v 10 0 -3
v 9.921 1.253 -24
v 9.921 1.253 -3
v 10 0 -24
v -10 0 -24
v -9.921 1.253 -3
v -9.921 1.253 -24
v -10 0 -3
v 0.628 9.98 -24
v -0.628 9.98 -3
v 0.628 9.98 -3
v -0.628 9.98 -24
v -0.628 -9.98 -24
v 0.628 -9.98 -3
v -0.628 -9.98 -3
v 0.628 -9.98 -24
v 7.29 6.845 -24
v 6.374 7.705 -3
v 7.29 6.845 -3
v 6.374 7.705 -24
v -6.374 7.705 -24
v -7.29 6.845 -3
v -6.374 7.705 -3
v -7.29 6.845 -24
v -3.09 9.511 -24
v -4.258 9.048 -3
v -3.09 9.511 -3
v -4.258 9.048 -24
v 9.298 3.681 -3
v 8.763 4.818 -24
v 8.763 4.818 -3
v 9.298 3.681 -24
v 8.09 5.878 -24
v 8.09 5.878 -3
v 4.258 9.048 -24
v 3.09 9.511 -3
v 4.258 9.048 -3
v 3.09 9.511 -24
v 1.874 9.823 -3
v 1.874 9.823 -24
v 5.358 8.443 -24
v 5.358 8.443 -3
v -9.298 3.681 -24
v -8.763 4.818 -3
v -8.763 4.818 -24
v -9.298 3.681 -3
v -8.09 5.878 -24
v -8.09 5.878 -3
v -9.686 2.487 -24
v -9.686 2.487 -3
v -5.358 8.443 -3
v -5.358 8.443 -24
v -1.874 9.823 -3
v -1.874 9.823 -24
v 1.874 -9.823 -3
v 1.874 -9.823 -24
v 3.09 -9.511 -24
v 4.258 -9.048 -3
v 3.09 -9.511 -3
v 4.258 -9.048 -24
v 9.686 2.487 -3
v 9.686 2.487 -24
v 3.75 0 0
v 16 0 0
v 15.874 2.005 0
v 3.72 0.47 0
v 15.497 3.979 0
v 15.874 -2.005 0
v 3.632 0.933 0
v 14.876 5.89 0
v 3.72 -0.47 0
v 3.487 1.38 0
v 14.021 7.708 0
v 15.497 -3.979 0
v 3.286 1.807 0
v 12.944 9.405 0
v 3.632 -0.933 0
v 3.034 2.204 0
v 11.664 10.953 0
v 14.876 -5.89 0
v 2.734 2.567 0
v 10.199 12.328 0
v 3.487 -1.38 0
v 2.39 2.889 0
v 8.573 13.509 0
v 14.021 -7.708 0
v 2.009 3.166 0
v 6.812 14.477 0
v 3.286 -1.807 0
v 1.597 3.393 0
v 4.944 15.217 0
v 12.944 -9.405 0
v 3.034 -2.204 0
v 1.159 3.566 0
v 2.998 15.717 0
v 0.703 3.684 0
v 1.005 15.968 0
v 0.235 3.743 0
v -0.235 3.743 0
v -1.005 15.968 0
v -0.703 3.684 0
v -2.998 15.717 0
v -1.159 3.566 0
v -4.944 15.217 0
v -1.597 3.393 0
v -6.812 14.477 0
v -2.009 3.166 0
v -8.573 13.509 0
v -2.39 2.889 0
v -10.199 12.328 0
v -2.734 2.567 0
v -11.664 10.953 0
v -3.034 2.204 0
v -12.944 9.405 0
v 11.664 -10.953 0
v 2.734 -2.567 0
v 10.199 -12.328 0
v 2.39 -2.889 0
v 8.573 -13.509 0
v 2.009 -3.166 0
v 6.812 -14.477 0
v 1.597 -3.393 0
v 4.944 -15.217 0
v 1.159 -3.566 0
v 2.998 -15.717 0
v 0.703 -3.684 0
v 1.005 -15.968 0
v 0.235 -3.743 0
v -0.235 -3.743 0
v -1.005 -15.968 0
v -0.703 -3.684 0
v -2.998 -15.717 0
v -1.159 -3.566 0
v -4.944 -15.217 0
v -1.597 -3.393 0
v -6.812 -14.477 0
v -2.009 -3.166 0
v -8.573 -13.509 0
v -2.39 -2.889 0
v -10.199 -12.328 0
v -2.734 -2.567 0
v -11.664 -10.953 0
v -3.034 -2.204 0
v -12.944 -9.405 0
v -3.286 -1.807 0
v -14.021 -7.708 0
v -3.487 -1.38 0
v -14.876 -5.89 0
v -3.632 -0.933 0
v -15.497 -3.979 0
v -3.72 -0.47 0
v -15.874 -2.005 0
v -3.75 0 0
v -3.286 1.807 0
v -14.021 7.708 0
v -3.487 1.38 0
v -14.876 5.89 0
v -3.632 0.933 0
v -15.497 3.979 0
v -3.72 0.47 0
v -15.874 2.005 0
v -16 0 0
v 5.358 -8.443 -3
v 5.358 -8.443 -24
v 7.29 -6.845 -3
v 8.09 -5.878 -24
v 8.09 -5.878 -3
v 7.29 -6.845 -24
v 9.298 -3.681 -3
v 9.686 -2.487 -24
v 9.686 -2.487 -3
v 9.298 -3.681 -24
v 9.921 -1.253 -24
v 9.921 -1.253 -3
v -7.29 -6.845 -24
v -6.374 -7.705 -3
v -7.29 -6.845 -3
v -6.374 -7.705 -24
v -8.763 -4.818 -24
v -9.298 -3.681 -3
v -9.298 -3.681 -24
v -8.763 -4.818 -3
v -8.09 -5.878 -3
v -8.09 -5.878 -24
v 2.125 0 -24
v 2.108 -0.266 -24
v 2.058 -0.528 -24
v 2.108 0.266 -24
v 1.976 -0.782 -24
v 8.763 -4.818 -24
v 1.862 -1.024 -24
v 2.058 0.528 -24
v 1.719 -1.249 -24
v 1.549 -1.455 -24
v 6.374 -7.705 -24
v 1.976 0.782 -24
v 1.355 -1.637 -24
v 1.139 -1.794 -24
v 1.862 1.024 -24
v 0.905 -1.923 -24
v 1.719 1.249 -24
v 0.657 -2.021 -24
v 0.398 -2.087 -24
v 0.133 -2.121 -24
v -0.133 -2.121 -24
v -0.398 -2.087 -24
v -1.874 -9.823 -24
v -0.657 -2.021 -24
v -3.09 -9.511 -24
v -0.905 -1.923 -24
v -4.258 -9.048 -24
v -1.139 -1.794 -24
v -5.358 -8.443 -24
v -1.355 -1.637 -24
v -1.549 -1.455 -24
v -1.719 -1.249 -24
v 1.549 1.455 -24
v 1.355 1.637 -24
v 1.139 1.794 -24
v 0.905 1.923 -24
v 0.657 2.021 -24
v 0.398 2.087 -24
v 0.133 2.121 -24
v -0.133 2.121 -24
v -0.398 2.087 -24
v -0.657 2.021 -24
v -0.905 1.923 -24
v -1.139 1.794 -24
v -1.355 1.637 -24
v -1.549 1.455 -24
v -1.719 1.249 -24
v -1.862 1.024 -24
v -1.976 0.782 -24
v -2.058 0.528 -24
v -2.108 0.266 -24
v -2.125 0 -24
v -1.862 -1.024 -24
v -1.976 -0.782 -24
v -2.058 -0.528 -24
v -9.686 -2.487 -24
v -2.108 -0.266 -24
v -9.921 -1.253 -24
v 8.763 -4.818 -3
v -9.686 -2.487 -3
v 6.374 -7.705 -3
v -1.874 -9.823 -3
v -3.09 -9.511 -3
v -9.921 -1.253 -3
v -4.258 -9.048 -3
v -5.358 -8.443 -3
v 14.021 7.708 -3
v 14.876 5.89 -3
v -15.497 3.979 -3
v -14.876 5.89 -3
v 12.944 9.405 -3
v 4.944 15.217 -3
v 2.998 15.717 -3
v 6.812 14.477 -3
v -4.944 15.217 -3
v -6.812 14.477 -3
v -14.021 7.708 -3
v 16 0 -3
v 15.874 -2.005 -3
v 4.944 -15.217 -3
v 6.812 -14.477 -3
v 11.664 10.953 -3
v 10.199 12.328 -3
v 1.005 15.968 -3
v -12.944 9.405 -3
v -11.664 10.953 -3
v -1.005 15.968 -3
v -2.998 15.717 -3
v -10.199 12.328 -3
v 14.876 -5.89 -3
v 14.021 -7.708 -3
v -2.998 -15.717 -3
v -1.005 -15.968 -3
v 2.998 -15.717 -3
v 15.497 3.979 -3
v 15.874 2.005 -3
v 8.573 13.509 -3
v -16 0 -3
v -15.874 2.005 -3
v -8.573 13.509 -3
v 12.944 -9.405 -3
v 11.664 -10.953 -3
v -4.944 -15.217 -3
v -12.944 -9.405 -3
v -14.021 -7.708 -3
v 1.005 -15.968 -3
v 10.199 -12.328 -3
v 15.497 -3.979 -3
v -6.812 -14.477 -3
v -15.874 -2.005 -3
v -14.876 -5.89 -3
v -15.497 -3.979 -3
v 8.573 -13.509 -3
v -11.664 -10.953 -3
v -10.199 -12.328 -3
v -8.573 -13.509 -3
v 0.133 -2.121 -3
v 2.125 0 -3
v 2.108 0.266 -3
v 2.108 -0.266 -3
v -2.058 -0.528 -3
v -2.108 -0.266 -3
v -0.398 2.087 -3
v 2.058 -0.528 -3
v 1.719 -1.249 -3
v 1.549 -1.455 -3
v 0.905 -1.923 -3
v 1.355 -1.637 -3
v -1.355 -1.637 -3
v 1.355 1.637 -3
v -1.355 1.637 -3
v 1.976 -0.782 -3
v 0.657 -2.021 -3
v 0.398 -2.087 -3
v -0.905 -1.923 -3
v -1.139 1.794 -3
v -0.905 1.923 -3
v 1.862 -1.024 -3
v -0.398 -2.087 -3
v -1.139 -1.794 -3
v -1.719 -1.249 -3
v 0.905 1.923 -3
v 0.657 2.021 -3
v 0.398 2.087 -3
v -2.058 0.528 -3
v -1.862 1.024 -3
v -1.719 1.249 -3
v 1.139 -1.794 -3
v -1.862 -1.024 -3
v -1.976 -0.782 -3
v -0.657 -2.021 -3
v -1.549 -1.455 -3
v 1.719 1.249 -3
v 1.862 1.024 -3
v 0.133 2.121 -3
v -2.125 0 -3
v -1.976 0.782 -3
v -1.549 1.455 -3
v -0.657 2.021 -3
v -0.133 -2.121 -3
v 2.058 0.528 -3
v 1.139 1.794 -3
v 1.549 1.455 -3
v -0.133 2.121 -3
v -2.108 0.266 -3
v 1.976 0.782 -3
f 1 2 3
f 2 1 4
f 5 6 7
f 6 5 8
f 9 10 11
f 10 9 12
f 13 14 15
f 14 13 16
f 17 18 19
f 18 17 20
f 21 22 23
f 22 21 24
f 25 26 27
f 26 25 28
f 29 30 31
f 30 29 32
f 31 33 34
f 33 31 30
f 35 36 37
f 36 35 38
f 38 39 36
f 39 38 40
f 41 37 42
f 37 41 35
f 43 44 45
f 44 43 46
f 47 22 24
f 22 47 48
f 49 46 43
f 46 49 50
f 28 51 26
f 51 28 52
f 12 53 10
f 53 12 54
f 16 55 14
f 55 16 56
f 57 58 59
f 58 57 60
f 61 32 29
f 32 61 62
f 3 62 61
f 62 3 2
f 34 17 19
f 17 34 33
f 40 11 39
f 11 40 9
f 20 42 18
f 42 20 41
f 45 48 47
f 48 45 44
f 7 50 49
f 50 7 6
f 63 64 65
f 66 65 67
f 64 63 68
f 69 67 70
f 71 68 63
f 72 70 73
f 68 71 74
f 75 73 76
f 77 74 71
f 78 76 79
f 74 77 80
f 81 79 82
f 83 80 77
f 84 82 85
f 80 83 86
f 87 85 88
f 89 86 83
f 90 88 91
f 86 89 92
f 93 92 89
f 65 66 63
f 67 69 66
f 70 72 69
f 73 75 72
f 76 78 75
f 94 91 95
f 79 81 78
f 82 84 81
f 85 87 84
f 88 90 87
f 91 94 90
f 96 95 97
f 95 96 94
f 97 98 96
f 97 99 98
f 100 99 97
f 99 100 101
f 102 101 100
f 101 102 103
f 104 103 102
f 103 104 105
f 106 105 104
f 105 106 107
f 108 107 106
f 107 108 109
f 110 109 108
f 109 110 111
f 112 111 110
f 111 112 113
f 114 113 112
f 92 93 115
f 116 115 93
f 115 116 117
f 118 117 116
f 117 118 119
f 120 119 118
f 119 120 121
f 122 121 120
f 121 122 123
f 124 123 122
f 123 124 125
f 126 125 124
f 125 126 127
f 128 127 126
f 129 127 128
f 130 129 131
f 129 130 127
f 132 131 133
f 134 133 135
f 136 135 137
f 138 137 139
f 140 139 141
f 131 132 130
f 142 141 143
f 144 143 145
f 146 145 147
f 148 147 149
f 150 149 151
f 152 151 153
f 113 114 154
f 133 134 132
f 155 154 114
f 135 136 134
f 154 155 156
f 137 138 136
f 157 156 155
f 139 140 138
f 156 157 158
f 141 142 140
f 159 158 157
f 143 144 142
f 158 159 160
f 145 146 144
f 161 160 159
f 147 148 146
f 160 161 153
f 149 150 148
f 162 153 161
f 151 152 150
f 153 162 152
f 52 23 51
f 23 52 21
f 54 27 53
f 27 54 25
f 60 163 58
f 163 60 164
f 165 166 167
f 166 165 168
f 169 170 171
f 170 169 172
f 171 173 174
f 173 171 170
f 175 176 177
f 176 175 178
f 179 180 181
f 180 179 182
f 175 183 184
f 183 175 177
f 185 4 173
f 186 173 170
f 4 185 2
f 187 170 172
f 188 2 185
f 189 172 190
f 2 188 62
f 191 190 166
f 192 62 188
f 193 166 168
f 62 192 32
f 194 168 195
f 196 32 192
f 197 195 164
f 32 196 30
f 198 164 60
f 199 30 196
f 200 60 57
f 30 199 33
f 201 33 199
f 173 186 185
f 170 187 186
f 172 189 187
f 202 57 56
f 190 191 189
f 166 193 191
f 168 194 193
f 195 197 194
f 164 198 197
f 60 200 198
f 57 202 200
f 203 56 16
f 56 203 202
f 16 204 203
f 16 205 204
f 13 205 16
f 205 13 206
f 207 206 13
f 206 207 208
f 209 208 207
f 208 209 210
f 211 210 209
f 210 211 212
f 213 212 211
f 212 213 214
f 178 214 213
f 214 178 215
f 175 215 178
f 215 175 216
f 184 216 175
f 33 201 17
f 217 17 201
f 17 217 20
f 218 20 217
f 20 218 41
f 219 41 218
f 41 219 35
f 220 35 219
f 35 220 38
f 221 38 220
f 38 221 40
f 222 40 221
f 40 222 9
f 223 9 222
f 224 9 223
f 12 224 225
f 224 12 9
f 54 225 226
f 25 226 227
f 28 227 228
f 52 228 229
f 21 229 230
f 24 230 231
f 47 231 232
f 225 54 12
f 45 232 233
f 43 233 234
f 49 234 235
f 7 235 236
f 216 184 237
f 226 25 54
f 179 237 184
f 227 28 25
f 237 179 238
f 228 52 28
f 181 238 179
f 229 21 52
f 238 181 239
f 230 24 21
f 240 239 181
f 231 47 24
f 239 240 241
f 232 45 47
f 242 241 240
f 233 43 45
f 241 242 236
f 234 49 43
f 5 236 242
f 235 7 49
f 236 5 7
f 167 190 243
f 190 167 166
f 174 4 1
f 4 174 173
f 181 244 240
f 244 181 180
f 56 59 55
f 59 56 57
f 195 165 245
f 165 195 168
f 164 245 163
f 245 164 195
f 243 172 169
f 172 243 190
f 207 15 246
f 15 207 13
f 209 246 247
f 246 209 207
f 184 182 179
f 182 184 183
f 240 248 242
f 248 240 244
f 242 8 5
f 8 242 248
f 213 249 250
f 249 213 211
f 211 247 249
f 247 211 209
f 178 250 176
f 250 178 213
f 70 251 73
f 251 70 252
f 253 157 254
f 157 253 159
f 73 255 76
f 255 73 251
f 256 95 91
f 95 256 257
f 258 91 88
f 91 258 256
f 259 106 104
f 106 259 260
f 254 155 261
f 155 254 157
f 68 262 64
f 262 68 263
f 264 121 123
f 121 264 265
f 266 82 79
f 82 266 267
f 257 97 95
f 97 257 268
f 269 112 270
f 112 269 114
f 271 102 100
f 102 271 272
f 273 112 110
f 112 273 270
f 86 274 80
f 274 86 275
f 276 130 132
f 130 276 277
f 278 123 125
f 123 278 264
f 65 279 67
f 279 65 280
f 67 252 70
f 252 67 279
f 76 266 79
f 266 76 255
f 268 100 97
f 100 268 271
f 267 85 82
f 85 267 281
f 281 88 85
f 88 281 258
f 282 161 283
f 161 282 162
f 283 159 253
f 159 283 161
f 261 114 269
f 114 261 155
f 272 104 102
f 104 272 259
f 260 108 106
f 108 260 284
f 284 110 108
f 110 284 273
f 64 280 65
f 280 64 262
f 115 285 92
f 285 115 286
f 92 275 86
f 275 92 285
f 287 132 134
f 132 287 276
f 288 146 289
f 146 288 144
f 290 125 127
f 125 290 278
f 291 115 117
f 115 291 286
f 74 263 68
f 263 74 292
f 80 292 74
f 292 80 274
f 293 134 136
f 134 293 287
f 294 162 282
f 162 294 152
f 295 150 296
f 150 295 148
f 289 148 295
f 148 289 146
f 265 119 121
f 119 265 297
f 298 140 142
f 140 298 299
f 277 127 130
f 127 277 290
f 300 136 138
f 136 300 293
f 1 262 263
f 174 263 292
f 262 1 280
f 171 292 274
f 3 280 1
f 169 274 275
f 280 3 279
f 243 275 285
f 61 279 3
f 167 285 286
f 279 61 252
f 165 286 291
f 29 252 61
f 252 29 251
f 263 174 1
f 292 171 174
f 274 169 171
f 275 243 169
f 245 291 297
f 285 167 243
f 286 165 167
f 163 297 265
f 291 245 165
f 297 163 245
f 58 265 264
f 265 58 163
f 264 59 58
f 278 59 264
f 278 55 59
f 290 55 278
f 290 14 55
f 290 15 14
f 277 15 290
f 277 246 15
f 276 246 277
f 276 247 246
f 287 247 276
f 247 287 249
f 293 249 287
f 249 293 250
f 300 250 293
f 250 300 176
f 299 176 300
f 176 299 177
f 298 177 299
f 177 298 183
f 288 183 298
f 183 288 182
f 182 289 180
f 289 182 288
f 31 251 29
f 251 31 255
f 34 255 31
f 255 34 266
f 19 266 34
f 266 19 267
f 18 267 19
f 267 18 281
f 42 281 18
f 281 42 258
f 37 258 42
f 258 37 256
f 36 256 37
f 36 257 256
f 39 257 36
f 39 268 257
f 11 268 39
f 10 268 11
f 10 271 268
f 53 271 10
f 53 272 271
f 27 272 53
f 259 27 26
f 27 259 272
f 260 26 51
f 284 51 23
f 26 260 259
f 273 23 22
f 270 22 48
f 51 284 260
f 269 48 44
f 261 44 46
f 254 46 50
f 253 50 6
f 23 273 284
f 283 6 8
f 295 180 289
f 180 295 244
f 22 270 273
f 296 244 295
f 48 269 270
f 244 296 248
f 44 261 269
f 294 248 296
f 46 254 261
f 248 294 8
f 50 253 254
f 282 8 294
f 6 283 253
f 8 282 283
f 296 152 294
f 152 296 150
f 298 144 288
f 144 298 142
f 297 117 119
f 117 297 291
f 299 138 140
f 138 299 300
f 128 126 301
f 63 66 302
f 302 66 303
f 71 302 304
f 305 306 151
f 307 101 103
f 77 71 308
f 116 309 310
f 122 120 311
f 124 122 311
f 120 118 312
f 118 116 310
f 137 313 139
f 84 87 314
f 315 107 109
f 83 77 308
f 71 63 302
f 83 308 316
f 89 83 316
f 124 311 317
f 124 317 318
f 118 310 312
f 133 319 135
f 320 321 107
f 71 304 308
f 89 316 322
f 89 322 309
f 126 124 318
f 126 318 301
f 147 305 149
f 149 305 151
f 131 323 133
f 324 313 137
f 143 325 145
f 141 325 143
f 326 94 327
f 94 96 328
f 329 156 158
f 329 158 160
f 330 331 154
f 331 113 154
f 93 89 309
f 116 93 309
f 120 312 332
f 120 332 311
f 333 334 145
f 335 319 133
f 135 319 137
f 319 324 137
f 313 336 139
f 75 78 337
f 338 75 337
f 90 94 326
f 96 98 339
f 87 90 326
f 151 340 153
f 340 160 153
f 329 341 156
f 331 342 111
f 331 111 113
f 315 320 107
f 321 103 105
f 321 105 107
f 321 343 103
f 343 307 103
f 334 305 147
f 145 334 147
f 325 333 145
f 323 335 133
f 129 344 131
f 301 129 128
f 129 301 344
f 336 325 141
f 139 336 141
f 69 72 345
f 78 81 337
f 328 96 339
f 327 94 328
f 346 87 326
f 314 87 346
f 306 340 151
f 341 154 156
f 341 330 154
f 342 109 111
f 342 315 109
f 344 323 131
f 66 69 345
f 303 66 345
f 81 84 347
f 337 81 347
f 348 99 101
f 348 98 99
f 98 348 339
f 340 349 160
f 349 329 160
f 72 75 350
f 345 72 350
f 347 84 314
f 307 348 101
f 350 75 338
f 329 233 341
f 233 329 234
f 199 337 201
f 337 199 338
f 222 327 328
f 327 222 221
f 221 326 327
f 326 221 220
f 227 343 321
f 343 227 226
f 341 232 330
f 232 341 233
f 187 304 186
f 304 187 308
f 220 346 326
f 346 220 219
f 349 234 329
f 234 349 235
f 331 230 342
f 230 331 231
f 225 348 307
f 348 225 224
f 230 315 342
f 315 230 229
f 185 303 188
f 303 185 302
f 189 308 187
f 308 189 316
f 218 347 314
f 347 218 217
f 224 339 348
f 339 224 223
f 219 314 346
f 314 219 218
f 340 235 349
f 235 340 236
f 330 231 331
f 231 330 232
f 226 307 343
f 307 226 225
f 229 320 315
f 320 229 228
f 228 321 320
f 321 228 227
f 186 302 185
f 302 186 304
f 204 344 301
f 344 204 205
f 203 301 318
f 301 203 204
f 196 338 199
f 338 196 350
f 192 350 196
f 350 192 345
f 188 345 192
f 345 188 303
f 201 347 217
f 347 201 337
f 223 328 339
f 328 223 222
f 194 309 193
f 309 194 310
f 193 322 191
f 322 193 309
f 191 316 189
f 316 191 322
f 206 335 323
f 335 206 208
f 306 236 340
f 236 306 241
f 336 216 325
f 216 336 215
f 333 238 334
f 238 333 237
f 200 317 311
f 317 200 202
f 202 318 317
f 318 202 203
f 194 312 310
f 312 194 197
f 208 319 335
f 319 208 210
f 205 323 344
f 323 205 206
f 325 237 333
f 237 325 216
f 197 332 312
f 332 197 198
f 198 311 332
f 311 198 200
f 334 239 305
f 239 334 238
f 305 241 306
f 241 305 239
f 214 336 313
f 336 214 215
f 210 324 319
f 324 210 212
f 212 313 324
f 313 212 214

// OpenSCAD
$fn = 50;


difference() {
	union() {
		translate(v = [0, 0, -24.0000000000]) {
			cylinder(h = 24, r = 10.0000000000);
		}
		translate(v = [0, 0, -3.0000000000]) {
			cylinder(h = 3, r = 16.0000000000);
		}
	}
	union() {
		translate(v = [0, 0, 0]) {
			rotate(a = [0, 0, 0]) {
				difference() {
					union() {
						#translate(v = [0, 0, -24.0000000000]) {
							cylinder(h = 24, r = 2.0000000000);
						}
						#translate(v = [0, 0, -3]) {
							cylinder(h = 3, r = 10.0000000000, r1 = 2.1250000000, r2 = 3.7500000000);
						}
						#translate(v = [0, 0, -24.0000000000]) {
							cylinder(h = 24, r = 2.1250000000);
						}
						#translate(v = [0, 0, -24.0000000000]) {
							cylinder(h = 24, r = 2.0000000000);
						}
					}
					union();
				}
			}
		}
	}
}
